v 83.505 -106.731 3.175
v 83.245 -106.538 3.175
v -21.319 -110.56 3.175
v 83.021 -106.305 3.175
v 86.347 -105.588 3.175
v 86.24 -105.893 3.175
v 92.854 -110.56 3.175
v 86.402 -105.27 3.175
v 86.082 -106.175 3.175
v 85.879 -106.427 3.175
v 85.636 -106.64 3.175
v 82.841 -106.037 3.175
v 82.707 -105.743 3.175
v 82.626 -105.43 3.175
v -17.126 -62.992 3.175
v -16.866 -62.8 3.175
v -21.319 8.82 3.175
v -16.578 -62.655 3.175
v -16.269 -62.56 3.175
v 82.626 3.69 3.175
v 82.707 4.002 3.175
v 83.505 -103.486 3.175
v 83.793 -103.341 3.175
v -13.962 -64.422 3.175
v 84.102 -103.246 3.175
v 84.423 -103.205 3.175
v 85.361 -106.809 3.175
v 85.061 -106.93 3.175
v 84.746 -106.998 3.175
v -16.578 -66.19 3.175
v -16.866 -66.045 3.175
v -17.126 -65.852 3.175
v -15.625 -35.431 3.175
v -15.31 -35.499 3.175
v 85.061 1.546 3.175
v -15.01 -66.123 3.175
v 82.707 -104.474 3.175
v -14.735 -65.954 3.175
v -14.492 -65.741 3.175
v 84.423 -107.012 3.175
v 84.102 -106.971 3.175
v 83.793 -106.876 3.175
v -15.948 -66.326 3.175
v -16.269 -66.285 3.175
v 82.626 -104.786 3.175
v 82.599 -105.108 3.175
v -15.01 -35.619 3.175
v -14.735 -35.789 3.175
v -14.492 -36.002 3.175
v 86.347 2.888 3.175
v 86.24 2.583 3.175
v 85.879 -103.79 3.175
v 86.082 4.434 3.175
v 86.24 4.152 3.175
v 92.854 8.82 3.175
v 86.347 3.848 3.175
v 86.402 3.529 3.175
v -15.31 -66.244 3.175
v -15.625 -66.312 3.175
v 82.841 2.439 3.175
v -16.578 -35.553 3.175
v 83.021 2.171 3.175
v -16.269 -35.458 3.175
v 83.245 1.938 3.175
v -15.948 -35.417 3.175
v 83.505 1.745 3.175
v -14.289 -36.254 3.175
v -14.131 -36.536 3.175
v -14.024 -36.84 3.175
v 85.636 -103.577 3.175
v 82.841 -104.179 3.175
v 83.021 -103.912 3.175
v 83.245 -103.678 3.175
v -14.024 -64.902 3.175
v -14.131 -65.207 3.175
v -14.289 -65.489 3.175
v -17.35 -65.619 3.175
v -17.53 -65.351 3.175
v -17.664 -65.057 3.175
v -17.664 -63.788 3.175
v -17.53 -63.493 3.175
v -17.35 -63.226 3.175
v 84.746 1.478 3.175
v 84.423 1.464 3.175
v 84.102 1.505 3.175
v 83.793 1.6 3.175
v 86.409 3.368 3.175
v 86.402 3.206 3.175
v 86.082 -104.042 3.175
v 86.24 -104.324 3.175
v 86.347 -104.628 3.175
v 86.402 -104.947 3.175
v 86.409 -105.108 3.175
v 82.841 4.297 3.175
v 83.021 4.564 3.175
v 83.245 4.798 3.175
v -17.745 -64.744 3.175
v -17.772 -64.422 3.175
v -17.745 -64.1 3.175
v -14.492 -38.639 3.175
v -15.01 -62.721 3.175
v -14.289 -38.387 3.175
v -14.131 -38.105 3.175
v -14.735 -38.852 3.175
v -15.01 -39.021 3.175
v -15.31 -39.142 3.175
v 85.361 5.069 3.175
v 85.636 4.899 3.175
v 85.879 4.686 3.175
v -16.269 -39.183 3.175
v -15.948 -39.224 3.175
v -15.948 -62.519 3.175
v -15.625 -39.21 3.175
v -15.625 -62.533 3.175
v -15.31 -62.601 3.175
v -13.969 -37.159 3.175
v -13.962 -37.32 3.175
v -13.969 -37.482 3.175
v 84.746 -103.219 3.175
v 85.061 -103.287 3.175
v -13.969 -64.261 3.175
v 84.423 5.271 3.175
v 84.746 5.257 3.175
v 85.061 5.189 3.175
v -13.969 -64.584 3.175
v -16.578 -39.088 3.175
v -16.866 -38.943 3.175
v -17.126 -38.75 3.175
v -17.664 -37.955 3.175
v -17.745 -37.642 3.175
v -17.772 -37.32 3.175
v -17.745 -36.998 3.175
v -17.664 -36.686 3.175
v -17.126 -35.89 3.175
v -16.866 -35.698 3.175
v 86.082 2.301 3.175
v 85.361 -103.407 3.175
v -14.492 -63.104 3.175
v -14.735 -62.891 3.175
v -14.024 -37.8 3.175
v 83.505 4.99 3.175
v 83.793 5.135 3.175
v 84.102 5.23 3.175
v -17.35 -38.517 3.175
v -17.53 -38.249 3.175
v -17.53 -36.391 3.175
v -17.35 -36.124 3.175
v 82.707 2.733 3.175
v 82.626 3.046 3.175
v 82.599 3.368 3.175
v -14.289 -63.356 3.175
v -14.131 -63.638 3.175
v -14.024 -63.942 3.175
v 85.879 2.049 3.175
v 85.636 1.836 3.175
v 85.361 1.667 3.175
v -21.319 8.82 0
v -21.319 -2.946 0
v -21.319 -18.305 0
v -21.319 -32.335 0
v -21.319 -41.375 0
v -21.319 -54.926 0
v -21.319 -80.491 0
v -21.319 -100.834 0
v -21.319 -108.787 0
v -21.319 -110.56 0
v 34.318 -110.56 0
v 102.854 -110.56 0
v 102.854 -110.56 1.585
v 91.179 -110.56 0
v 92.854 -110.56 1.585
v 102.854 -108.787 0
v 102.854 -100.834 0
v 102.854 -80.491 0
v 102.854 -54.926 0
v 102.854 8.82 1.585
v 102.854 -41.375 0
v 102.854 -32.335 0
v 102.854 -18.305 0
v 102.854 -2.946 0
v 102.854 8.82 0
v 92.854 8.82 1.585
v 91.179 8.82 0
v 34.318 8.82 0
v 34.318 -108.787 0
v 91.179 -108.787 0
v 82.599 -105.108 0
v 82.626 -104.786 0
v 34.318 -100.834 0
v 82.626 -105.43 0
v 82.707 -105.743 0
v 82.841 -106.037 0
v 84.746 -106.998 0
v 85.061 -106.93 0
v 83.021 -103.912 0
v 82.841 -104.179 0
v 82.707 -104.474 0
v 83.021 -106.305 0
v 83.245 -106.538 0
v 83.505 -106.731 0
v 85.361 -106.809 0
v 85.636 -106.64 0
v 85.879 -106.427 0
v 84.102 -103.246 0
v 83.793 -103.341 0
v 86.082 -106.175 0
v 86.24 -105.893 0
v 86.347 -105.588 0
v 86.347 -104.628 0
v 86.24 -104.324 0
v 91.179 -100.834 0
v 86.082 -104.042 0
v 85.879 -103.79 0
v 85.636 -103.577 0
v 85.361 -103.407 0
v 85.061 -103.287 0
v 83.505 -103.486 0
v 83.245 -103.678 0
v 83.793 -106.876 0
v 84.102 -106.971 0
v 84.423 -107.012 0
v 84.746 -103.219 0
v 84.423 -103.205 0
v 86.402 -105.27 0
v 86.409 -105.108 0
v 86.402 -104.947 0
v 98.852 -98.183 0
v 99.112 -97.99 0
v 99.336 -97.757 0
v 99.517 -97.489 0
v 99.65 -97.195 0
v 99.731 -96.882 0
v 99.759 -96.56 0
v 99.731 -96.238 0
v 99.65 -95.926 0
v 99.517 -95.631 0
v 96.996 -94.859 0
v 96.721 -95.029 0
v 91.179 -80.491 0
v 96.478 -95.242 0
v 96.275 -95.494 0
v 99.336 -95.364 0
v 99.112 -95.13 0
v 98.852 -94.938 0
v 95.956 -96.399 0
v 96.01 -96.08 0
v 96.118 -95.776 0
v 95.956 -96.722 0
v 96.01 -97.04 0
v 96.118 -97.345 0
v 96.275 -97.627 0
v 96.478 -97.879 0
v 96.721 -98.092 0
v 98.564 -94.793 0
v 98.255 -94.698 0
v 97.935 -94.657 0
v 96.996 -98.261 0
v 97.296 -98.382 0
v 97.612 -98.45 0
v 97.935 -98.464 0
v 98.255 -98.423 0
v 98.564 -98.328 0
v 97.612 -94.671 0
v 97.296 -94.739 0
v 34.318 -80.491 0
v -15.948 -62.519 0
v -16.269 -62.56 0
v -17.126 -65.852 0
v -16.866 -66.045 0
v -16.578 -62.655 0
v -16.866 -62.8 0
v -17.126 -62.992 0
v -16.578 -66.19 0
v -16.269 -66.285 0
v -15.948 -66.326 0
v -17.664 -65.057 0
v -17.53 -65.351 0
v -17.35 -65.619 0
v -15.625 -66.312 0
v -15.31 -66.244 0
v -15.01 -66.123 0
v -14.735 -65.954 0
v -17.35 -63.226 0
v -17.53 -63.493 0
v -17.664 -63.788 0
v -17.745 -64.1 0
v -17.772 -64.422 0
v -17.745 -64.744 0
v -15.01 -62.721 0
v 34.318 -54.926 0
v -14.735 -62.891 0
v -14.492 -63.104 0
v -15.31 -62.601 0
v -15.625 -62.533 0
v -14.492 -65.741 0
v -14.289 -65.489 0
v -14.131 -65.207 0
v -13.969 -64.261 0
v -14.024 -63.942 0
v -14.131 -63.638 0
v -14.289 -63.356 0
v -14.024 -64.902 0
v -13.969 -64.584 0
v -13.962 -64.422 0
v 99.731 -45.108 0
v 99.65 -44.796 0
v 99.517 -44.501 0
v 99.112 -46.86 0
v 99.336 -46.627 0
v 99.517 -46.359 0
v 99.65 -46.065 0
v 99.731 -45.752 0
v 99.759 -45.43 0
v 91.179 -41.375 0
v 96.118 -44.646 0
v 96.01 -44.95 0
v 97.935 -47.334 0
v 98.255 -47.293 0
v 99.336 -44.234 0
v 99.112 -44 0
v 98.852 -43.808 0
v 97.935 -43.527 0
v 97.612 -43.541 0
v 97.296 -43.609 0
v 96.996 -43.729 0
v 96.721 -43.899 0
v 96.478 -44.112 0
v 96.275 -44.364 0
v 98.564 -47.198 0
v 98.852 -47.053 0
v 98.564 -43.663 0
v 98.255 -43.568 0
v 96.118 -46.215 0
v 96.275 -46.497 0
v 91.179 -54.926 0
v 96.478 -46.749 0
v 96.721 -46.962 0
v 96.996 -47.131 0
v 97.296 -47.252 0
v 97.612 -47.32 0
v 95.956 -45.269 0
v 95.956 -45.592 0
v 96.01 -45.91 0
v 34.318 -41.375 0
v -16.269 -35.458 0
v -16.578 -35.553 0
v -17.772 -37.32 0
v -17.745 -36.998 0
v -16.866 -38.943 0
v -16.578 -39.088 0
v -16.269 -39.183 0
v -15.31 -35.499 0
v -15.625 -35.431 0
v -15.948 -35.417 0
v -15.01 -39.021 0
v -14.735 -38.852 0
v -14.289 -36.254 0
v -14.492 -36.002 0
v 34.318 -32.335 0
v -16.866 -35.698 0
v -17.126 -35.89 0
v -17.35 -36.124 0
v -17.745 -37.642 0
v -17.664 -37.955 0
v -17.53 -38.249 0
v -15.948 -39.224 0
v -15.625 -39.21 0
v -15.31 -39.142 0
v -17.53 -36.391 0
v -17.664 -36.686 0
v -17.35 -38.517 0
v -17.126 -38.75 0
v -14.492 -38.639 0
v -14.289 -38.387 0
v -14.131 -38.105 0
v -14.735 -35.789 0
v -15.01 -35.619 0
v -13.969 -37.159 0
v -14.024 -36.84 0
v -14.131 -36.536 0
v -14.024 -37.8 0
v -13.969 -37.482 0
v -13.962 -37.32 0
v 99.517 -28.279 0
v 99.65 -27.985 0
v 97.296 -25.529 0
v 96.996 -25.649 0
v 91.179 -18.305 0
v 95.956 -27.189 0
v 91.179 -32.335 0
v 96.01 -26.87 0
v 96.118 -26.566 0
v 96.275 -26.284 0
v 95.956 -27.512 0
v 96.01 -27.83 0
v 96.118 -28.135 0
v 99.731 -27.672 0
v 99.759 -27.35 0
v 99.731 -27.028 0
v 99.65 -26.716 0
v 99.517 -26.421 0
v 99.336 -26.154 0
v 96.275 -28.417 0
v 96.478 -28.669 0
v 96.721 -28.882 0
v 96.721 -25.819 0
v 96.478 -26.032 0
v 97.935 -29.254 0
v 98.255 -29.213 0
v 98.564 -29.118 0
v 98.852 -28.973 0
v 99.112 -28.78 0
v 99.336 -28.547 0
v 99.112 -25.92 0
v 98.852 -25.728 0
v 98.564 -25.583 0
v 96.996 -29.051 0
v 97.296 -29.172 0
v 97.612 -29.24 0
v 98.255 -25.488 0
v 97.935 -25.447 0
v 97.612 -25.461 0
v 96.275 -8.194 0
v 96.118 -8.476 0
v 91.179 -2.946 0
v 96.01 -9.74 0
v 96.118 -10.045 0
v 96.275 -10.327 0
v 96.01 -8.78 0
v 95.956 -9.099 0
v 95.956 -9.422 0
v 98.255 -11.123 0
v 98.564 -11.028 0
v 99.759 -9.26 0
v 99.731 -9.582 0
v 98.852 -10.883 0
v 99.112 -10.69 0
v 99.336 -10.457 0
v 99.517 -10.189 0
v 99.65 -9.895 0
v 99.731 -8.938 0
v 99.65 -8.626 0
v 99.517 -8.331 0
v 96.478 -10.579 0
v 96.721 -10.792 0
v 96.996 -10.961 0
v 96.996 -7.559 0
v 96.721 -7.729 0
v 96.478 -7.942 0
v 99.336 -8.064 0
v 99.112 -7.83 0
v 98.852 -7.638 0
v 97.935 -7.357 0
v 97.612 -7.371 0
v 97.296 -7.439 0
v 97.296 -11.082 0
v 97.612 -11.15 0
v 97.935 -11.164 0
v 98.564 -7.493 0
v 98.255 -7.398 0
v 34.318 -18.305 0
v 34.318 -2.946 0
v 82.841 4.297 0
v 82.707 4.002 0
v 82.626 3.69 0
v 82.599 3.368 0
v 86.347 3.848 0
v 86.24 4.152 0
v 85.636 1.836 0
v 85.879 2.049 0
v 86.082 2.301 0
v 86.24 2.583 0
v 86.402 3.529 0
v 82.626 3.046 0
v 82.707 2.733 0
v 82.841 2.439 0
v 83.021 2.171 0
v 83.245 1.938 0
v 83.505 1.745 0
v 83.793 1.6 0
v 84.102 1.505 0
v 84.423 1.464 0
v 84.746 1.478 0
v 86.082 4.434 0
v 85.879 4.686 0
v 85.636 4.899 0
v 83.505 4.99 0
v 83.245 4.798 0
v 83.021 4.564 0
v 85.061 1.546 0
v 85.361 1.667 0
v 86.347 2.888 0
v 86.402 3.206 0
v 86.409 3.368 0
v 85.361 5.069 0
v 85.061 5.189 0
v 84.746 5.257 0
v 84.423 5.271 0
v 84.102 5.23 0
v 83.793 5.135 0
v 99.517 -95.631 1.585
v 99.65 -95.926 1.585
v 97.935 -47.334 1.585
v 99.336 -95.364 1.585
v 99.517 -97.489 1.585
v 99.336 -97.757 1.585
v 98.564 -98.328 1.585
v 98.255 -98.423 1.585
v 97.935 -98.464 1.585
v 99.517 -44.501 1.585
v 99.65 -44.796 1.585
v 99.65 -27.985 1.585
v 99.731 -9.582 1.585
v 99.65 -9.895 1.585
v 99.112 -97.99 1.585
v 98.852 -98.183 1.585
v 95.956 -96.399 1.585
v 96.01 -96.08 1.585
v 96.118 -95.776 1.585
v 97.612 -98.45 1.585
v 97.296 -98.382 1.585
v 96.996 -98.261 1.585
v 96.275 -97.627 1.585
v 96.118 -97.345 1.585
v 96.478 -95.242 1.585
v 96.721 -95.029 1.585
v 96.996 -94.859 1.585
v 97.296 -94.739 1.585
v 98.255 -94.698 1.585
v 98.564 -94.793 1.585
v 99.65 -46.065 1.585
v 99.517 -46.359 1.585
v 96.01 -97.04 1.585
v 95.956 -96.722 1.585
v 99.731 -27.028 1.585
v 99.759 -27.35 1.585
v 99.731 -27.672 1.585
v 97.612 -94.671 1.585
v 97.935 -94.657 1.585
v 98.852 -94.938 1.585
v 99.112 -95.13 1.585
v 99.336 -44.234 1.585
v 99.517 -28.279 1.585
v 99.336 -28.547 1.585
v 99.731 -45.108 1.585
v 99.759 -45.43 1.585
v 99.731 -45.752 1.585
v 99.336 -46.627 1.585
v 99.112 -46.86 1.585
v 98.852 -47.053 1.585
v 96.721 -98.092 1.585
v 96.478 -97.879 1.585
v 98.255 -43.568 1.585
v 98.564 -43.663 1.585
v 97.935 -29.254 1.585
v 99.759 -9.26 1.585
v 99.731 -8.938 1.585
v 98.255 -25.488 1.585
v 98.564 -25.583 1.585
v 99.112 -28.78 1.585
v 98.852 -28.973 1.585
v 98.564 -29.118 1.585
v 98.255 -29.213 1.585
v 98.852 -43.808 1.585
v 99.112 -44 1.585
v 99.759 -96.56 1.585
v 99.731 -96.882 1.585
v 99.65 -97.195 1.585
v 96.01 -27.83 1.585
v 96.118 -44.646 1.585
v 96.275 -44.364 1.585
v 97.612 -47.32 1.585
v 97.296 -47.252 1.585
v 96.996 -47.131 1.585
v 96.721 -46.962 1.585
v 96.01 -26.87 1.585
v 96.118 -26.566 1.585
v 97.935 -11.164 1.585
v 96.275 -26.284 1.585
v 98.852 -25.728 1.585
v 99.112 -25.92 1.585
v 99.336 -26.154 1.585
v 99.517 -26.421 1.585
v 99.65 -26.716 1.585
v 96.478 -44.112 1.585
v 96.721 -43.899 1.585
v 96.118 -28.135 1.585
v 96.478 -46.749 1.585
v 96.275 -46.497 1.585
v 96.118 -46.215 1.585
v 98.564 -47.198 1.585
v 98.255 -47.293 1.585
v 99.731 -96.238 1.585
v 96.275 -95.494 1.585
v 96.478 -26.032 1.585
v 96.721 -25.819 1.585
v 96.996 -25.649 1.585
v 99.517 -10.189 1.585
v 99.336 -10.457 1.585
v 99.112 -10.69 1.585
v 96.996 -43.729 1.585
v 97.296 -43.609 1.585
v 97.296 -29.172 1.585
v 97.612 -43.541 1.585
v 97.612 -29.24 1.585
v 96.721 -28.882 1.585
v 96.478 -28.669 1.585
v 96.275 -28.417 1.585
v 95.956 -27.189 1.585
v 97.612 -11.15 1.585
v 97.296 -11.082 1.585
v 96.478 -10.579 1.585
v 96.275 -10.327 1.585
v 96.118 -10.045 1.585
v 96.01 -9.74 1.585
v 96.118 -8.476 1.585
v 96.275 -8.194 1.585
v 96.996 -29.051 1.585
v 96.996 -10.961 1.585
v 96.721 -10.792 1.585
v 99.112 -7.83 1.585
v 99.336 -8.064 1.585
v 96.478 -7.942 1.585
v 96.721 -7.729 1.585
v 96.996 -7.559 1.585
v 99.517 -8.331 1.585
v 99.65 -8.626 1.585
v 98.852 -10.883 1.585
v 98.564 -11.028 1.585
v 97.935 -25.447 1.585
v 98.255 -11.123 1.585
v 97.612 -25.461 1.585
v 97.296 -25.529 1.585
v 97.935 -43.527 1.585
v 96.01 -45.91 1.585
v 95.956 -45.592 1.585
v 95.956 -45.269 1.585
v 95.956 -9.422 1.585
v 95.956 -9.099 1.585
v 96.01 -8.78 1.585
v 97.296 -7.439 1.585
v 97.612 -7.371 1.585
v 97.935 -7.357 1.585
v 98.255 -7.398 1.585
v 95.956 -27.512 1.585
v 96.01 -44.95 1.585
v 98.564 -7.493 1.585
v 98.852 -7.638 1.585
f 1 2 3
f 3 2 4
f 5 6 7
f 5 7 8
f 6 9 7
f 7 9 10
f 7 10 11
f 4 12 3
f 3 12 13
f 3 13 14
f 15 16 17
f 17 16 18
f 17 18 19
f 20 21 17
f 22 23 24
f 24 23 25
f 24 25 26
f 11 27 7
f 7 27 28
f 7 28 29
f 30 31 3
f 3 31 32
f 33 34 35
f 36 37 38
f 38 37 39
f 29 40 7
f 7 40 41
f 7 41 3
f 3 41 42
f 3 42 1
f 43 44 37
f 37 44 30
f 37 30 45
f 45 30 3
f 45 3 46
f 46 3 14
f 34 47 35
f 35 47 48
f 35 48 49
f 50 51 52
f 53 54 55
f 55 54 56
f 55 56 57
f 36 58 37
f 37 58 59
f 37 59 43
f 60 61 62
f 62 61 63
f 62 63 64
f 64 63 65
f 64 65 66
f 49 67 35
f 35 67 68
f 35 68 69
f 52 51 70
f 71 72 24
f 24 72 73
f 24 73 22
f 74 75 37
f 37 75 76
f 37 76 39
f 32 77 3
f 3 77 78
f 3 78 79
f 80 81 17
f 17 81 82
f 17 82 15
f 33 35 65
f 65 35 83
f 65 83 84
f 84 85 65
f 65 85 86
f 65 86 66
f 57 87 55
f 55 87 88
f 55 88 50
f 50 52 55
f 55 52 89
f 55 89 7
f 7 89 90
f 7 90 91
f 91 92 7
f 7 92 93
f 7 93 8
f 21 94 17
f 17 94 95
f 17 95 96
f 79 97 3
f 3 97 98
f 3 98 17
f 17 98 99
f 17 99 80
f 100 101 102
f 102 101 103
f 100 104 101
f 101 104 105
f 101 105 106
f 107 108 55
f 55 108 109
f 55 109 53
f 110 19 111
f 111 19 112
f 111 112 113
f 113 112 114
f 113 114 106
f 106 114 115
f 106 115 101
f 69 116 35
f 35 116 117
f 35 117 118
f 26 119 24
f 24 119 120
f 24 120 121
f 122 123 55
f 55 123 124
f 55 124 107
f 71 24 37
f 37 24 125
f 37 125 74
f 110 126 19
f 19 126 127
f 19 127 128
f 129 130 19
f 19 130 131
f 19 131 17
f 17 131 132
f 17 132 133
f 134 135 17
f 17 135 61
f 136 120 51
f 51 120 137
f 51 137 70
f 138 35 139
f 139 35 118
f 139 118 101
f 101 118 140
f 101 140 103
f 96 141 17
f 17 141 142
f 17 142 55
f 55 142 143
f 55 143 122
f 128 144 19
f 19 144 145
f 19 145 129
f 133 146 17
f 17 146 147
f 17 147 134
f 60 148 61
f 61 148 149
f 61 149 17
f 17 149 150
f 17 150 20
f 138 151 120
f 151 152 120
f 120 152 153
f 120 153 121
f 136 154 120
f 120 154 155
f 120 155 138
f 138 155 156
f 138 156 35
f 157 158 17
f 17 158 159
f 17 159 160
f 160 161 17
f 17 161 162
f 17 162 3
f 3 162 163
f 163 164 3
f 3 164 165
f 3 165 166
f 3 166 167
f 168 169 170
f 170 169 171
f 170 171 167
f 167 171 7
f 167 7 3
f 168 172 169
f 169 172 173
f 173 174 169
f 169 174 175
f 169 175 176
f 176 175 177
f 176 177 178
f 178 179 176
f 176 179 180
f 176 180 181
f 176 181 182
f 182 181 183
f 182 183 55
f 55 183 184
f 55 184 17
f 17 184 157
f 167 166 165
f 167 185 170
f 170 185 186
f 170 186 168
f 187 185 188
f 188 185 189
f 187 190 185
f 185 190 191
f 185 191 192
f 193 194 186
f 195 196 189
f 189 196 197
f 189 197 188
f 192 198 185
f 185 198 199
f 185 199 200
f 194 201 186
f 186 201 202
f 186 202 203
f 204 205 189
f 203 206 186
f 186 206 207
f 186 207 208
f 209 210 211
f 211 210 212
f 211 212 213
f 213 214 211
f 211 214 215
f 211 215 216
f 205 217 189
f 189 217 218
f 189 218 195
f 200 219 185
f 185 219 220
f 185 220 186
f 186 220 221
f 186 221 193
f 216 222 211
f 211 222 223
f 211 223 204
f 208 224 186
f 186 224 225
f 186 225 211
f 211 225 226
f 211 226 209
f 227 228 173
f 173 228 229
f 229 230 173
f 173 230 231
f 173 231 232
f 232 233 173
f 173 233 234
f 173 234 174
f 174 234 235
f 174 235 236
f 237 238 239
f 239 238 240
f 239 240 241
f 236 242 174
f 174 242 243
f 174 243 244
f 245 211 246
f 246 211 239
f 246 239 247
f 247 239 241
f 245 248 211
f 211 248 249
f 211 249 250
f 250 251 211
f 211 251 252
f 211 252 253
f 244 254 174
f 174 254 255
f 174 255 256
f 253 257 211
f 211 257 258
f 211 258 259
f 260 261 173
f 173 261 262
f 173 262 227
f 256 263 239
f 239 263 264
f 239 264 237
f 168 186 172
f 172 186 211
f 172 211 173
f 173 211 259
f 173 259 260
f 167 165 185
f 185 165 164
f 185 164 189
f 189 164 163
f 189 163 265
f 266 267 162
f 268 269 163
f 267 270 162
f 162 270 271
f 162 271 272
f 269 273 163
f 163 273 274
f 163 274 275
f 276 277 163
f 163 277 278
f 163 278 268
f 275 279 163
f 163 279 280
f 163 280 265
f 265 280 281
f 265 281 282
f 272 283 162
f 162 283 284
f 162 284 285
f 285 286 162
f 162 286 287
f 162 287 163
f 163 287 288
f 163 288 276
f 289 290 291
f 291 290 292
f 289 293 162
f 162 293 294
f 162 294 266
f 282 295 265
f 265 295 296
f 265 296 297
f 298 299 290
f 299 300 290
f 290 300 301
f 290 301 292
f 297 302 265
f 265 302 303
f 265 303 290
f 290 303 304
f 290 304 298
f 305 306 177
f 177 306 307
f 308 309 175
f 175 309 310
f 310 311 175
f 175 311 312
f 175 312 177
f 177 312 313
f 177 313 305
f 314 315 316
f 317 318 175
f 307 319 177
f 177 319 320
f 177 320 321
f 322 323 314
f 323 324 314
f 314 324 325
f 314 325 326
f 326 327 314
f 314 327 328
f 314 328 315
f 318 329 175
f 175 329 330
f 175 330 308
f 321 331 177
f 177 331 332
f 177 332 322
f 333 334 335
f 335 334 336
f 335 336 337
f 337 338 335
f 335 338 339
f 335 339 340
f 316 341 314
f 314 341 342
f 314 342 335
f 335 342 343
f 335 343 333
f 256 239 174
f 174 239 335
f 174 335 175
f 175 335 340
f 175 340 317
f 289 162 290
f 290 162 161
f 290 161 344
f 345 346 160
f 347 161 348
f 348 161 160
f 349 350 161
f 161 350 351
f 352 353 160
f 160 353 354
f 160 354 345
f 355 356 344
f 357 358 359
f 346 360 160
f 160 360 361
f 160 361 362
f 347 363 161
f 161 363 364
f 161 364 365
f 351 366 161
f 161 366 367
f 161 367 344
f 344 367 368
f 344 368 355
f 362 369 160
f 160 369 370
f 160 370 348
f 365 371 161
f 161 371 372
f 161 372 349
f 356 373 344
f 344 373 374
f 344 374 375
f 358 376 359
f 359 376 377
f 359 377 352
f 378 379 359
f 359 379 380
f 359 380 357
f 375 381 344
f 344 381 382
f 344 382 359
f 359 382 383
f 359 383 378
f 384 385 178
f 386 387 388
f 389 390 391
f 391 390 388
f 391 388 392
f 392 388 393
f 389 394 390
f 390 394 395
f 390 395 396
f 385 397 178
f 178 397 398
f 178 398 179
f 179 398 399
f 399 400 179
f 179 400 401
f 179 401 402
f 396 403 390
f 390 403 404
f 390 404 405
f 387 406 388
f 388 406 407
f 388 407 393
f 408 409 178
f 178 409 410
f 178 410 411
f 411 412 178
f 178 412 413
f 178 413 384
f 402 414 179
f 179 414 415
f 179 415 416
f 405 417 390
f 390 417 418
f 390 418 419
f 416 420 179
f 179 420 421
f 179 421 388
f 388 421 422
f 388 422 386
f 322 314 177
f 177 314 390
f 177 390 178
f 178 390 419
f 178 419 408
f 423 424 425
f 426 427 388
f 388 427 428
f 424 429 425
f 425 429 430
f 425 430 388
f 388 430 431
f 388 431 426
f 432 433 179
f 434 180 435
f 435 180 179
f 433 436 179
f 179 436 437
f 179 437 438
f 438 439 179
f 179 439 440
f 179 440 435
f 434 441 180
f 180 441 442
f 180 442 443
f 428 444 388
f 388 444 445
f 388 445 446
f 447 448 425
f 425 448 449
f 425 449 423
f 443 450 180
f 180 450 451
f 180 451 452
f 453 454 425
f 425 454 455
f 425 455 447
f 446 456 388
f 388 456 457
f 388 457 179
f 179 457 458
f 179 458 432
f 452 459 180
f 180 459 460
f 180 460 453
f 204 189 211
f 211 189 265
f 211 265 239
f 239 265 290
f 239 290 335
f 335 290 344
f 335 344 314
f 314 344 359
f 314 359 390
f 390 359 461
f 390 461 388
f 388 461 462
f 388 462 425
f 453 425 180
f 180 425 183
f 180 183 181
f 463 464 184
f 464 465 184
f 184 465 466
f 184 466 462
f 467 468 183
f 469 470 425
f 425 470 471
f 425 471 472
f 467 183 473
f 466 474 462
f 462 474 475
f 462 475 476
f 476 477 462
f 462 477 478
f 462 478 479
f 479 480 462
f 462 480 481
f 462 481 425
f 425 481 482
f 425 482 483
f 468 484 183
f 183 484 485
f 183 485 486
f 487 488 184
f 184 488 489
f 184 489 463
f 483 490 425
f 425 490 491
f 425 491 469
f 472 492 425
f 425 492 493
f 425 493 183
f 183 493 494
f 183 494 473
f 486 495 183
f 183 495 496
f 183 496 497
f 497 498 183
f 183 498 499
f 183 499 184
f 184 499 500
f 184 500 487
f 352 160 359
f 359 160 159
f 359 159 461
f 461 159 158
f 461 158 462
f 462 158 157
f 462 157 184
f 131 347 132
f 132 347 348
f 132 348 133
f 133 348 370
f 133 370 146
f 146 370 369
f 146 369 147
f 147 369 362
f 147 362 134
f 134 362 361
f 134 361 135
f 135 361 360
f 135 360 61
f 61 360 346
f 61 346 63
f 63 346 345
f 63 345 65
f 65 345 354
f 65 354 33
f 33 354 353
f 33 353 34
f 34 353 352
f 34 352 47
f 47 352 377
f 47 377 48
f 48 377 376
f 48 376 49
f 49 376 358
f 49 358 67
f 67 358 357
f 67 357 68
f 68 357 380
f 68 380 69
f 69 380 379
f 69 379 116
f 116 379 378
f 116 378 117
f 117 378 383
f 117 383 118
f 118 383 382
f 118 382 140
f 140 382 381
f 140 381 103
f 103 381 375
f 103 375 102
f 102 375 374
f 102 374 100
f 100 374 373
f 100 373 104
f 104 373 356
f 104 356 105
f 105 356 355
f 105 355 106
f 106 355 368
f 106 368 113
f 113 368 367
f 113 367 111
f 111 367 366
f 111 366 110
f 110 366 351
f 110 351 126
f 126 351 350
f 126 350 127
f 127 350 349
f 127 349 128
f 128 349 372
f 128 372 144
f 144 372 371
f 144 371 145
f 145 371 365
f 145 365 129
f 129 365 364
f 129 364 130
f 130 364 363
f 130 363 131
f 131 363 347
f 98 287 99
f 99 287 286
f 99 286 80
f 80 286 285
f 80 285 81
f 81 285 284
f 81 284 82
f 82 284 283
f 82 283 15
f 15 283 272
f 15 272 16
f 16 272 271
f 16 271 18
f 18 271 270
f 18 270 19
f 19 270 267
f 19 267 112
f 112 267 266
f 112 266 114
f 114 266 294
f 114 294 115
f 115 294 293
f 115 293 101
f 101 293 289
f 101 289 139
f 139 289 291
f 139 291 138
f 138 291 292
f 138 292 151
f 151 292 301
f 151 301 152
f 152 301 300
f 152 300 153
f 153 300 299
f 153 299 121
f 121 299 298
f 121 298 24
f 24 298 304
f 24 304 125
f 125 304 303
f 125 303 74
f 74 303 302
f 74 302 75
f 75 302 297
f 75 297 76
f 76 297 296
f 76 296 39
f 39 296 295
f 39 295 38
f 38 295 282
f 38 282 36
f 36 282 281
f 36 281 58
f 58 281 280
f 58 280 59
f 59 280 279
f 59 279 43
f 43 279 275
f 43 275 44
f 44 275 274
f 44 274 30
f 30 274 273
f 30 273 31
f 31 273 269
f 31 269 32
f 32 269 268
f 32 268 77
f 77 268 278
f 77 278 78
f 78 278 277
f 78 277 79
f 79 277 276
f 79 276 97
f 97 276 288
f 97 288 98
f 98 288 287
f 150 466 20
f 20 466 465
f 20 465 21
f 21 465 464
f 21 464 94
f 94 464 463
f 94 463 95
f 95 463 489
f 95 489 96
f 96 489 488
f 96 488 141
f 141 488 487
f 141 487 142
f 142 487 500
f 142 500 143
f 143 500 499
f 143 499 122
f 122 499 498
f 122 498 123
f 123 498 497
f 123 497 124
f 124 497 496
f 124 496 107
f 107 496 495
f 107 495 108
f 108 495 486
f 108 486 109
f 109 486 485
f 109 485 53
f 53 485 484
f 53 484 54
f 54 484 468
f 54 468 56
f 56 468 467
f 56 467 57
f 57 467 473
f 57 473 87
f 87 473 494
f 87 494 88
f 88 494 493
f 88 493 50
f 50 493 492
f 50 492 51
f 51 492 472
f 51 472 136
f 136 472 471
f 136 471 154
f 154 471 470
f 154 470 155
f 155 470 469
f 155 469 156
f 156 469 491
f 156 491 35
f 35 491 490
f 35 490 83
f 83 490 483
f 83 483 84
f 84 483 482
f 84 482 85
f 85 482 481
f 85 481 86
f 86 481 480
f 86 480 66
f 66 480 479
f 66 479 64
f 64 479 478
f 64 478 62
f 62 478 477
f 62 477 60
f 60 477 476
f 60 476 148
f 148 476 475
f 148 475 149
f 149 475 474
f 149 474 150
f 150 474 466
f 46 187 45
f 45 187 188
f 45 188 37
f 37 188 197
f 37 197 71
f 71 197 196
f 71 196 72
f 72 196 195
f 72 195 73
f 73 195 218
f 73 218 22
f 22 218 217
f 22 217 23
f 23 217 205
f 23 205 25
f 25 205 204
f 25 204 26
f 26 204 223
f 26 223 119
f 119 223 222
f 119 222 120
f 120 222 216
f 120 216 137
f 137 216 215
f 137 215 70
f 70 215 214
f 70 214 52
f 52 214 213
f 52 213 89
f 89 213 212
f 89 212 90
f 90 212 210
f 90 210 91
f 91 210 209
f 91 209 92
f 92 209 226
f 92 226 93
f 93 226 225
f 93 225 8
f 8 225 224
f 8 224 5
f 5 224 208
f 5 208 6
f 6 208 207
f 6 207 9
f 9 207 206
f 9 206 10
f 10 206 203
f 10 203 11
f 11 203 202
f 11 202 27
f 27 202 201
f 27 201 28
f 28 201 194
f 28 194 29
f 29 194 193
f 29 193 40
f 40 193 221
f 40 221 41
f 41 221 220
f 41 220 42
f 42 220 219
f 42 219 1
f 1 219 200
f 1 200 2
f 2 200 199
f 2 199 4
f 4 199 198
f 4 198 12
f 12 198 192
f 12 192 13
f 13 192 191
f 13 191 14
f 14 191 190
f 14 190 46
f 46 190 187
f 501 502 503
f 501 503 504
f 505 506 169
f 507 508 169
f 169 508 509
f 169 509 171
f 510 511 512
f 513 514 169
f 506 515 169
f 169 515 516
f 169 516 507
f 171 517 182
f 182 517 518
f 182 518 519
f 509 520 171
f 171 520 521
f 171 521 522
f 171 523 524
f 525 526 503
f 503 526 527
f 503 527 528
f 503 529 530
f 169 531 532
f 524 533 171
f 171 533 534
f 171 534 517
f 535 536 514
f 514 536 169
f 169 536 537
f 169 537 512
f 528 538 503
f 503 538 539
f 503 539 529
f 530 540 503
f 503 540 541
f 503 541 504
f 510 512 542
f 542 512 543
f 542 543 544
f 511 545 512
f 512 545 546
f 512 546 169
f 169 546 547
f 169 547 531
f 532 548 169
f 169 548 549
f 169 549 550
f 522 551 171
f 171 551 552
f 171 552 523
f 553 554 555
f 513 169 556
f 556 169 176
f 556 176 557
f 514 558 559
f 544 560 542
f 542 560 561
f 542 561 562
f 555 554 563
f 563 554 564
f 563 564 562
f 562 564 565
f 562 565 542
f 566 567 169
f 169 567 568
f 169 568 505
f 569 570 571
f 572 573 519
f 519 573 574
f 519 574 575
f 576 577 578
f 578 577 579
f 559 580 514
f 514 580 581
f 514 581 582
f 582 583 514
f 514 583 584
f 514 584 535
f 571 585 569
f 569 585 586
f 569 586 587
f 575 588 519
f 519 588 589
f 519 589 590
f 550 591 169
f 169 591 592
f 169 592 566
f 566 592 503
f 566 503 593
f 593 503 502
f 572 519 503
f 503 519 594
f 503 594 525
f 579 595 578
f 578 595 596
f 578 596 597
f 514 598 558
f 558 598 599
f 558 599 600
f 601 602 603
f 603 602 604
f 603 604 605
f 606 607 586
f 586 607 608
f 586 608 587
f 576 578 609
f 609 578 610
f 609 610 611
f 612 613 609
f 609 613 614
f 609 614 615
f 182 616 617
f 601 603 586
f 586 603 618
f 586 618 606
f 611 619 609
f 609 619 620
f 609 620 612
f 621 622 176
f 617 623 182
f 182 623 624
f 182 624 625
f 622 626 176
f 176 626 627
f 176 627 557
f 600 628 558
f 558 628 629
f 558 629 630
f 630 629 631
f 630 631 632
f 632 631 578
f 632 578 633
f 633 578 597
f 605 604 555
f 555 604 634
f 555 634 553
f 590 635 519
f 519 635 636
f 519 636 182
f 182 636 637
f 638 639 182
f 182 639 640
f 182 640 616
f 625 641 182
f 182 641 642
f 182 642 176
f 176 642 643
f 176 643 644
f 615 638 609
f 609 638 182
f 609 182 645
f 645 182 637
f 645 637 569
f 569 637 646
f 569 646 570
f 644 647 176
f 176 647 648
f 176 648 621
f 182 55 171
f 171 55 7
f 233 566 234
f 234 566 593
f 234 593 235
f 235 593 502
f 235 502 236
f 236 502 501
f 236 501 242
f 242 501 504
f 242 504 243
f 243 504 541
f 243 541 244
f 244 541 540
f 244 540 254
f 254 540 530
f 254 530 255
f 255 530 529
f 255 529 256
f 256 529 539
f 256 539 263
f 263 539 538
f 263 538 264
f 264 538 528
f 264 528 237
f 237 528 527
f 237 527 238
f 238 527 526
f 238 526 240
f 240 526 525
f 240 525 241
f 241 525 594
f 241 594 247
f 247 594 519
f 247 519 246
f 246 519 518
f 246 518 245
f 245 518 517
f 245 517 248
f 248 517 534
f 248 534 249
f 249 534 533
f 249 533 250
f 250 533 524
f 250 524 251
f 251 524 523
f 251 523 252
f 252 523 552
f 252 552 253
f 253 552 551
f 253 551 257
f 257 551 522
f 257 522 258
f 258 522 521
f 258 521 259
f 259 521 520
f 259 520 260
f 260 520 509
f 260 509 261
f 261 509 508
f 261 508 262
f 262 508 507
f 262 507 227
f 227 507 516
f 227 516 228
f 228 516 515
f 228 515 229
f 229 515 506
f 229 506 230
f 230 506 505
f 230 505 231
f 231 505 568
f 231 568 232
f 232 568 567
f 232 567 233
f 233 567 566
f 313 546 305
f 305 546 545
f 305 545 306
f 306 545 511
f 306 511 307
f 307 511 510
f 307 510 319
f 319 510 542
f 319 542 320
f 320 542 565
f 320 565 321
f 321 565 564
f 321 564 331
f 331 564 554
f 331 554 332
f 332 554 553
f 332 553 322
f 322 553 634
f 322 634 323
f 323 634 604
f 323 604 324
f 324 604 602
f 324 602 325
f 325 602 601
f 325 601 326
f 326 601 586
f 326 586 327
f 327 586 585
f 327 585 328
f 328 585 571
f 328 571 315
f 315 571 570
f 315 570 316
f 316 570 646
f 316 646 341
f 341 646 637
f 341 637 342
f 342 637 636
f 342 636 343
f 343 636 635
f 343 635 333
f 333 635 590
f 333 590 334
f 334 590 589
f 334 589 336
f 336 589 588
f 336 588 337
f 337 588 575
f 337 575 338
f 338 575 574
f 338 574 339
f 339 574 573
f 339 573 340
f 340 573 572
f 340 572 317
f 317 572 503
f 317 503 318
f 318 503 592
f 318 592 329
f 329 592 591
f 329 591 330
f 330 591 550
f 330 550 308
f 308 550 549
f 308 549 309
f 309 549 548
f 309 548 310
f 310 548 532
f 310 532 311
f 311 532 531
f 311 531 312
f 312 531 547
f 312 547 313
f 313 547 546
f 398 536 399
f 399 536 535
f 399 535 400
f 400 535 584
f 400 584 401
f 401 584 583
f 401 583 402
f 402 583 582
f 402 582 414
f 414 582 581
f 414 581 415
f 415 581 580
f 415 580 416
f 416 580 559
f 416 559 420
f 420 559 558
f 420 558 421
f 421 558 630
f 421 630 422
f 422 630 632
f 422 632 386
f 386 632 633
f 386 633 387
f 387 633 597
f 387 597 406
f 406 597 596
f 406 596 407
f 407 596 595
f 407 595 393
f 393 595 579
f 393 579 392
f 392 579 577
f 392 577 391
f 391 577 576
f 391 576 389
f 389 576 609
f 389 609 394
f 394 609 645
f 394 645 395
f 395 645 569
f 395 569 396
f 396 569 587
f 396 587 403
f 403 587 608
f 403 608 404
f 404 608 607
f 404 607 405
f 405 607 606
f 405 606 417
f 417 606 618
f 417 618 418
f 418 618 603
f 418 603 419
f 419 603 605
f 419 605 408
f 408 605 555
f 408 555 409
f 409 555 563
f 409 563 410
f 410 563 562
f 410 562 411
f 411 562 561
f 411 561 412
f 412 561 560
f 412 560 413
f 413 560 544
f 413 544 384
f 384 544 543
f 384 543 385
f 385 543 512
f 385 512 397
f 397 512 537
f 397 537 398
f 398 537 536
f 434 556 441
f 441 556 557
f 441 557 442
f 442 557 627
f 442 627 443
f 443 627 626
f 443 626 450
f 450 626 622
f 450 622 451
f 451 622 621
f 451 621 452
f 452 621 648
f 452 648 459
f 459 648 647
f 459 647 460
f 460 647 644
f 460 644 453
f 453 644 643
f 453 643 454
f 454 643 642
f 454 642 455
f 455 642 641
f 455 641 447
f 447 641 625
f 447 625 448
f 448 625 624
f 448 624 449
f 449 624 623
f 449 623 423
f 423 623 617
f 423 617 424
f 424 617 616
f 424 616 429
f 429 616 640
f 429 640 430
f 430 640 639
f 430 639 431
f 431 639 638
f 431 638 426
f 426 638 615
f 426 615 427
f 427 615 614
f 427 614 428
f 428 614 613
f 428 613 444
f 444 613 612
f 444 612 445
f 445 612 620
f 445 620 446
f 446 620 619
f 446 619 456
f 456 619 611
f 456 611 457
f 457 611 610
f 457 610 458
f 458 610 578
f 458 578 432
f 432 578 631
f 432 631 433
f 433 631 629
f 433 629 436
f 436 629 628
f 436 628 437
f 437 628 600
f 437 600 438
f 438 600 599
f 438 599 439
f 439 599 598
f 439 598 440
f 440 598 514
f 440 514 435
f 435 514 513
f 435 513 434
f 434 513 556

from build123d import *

# Parameters (mm, degrees)
SKETCH2_W           = 124.173
SKETCH2_H           = 119.38
BOSS_EXTRUDE1_DEPTH = 3.175
SKETCH4_R           = 1.905
CUT_EXTRUDE1_DEPTH  = 14.175
SKETCH10_W          = 1.59
SKETCH10_H          = 120
CUT_EXTRUDE3_DEPTH  = 10
SKETCH11_R          = 1.905
CUT_EXTRUDE4_DEPTH  = 10


with BuildPart() as part:
    # Sketch2 → Boss-Extrude1 (new body)
    with BuildSketch(Plane.XY):
        with Locations((40.767155738, -50.87039032)):
            Rectangle(SKETCH2_W, SKETCH2_H)
    extrude(amount=BOSS_EXTRUDE1_DEPTH)

    # Sketch4 → Cut-Extrude1 (cut)
    with BuildSketch(Plane.XY):
        with Locations((-15.867344262, -37.32039032)):
            Circle(SKETCH4_R)
        with Locations((-15.867344262, -64.42239032)):
            Circle(SKETCH4_R)
        with Locations((84.503655738, 3.36760968)):
            Circle(SKETCH4_R)
        with Locations((84.503655738, -105.10839032)):
            Circle(SKETCH4_R)
    extrude(amount=CUT_EXTRUDE1_DEPTH, mode=Mode.SUBTRACT)

    # Sketch10 → Cut-Extrude3 (cut)
    with BuildSketch(Plane(origin=(102.853655738, 0, 0), x_dir=(0, 0, -1), z_dir=(1, 0, 0))):
        with Locations((-2.380000064, -51.180389625)):
            Rectangle(SKETCH10_W, SKETCH10_H)
    extrude(amount=-CUT_EXTRUDE3_DEPTH, mode=Mode.SUBTRACT)

    # Sketch11 → Cut-Extrude4 (cut)
    with BuildSketch(Plane.XY.offset(1.585000064)):
        with Locations((97.853655738, -9.260389625)):
            Circle(SKETCH11_R)
        with Locations((97.853655738, -27.350389625)):
            Circle(SKETCH11_R)
        with Locations((97.853655738, -45.430389625)):
            Circle(SKETCH11_R)
        with Locations((97.853655738, -96.56039032)):
            Circle(SKETCH11_R)
    extrude(amount=-CUT_EXTRUDE4_DEPTH, mode=Mode.SUBTRACT)


solid = part.part
